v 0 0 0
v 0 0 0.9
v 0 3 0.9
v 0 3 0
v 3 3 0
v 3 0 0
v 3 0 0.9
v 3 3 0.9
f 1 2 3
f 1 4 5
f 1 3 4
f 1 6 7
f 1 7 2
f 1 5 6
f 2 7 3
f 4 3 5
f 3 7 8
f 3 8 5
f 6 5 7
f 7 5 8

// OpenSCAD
/* Warning, this is a very basic generator with a lot of approximation 
input data : [VQFN, NKA, 3x3x0.9mm, 24, , A, C04-01031A]
generated by com.zoubworld.electronics.cad.model3d.Basic
Date : Sun Feb 15 10:50:49 CET 2026
*/

//body
color("black")
translate([0,0,0])
cube([3.0,3.0,0.9], center=false);
